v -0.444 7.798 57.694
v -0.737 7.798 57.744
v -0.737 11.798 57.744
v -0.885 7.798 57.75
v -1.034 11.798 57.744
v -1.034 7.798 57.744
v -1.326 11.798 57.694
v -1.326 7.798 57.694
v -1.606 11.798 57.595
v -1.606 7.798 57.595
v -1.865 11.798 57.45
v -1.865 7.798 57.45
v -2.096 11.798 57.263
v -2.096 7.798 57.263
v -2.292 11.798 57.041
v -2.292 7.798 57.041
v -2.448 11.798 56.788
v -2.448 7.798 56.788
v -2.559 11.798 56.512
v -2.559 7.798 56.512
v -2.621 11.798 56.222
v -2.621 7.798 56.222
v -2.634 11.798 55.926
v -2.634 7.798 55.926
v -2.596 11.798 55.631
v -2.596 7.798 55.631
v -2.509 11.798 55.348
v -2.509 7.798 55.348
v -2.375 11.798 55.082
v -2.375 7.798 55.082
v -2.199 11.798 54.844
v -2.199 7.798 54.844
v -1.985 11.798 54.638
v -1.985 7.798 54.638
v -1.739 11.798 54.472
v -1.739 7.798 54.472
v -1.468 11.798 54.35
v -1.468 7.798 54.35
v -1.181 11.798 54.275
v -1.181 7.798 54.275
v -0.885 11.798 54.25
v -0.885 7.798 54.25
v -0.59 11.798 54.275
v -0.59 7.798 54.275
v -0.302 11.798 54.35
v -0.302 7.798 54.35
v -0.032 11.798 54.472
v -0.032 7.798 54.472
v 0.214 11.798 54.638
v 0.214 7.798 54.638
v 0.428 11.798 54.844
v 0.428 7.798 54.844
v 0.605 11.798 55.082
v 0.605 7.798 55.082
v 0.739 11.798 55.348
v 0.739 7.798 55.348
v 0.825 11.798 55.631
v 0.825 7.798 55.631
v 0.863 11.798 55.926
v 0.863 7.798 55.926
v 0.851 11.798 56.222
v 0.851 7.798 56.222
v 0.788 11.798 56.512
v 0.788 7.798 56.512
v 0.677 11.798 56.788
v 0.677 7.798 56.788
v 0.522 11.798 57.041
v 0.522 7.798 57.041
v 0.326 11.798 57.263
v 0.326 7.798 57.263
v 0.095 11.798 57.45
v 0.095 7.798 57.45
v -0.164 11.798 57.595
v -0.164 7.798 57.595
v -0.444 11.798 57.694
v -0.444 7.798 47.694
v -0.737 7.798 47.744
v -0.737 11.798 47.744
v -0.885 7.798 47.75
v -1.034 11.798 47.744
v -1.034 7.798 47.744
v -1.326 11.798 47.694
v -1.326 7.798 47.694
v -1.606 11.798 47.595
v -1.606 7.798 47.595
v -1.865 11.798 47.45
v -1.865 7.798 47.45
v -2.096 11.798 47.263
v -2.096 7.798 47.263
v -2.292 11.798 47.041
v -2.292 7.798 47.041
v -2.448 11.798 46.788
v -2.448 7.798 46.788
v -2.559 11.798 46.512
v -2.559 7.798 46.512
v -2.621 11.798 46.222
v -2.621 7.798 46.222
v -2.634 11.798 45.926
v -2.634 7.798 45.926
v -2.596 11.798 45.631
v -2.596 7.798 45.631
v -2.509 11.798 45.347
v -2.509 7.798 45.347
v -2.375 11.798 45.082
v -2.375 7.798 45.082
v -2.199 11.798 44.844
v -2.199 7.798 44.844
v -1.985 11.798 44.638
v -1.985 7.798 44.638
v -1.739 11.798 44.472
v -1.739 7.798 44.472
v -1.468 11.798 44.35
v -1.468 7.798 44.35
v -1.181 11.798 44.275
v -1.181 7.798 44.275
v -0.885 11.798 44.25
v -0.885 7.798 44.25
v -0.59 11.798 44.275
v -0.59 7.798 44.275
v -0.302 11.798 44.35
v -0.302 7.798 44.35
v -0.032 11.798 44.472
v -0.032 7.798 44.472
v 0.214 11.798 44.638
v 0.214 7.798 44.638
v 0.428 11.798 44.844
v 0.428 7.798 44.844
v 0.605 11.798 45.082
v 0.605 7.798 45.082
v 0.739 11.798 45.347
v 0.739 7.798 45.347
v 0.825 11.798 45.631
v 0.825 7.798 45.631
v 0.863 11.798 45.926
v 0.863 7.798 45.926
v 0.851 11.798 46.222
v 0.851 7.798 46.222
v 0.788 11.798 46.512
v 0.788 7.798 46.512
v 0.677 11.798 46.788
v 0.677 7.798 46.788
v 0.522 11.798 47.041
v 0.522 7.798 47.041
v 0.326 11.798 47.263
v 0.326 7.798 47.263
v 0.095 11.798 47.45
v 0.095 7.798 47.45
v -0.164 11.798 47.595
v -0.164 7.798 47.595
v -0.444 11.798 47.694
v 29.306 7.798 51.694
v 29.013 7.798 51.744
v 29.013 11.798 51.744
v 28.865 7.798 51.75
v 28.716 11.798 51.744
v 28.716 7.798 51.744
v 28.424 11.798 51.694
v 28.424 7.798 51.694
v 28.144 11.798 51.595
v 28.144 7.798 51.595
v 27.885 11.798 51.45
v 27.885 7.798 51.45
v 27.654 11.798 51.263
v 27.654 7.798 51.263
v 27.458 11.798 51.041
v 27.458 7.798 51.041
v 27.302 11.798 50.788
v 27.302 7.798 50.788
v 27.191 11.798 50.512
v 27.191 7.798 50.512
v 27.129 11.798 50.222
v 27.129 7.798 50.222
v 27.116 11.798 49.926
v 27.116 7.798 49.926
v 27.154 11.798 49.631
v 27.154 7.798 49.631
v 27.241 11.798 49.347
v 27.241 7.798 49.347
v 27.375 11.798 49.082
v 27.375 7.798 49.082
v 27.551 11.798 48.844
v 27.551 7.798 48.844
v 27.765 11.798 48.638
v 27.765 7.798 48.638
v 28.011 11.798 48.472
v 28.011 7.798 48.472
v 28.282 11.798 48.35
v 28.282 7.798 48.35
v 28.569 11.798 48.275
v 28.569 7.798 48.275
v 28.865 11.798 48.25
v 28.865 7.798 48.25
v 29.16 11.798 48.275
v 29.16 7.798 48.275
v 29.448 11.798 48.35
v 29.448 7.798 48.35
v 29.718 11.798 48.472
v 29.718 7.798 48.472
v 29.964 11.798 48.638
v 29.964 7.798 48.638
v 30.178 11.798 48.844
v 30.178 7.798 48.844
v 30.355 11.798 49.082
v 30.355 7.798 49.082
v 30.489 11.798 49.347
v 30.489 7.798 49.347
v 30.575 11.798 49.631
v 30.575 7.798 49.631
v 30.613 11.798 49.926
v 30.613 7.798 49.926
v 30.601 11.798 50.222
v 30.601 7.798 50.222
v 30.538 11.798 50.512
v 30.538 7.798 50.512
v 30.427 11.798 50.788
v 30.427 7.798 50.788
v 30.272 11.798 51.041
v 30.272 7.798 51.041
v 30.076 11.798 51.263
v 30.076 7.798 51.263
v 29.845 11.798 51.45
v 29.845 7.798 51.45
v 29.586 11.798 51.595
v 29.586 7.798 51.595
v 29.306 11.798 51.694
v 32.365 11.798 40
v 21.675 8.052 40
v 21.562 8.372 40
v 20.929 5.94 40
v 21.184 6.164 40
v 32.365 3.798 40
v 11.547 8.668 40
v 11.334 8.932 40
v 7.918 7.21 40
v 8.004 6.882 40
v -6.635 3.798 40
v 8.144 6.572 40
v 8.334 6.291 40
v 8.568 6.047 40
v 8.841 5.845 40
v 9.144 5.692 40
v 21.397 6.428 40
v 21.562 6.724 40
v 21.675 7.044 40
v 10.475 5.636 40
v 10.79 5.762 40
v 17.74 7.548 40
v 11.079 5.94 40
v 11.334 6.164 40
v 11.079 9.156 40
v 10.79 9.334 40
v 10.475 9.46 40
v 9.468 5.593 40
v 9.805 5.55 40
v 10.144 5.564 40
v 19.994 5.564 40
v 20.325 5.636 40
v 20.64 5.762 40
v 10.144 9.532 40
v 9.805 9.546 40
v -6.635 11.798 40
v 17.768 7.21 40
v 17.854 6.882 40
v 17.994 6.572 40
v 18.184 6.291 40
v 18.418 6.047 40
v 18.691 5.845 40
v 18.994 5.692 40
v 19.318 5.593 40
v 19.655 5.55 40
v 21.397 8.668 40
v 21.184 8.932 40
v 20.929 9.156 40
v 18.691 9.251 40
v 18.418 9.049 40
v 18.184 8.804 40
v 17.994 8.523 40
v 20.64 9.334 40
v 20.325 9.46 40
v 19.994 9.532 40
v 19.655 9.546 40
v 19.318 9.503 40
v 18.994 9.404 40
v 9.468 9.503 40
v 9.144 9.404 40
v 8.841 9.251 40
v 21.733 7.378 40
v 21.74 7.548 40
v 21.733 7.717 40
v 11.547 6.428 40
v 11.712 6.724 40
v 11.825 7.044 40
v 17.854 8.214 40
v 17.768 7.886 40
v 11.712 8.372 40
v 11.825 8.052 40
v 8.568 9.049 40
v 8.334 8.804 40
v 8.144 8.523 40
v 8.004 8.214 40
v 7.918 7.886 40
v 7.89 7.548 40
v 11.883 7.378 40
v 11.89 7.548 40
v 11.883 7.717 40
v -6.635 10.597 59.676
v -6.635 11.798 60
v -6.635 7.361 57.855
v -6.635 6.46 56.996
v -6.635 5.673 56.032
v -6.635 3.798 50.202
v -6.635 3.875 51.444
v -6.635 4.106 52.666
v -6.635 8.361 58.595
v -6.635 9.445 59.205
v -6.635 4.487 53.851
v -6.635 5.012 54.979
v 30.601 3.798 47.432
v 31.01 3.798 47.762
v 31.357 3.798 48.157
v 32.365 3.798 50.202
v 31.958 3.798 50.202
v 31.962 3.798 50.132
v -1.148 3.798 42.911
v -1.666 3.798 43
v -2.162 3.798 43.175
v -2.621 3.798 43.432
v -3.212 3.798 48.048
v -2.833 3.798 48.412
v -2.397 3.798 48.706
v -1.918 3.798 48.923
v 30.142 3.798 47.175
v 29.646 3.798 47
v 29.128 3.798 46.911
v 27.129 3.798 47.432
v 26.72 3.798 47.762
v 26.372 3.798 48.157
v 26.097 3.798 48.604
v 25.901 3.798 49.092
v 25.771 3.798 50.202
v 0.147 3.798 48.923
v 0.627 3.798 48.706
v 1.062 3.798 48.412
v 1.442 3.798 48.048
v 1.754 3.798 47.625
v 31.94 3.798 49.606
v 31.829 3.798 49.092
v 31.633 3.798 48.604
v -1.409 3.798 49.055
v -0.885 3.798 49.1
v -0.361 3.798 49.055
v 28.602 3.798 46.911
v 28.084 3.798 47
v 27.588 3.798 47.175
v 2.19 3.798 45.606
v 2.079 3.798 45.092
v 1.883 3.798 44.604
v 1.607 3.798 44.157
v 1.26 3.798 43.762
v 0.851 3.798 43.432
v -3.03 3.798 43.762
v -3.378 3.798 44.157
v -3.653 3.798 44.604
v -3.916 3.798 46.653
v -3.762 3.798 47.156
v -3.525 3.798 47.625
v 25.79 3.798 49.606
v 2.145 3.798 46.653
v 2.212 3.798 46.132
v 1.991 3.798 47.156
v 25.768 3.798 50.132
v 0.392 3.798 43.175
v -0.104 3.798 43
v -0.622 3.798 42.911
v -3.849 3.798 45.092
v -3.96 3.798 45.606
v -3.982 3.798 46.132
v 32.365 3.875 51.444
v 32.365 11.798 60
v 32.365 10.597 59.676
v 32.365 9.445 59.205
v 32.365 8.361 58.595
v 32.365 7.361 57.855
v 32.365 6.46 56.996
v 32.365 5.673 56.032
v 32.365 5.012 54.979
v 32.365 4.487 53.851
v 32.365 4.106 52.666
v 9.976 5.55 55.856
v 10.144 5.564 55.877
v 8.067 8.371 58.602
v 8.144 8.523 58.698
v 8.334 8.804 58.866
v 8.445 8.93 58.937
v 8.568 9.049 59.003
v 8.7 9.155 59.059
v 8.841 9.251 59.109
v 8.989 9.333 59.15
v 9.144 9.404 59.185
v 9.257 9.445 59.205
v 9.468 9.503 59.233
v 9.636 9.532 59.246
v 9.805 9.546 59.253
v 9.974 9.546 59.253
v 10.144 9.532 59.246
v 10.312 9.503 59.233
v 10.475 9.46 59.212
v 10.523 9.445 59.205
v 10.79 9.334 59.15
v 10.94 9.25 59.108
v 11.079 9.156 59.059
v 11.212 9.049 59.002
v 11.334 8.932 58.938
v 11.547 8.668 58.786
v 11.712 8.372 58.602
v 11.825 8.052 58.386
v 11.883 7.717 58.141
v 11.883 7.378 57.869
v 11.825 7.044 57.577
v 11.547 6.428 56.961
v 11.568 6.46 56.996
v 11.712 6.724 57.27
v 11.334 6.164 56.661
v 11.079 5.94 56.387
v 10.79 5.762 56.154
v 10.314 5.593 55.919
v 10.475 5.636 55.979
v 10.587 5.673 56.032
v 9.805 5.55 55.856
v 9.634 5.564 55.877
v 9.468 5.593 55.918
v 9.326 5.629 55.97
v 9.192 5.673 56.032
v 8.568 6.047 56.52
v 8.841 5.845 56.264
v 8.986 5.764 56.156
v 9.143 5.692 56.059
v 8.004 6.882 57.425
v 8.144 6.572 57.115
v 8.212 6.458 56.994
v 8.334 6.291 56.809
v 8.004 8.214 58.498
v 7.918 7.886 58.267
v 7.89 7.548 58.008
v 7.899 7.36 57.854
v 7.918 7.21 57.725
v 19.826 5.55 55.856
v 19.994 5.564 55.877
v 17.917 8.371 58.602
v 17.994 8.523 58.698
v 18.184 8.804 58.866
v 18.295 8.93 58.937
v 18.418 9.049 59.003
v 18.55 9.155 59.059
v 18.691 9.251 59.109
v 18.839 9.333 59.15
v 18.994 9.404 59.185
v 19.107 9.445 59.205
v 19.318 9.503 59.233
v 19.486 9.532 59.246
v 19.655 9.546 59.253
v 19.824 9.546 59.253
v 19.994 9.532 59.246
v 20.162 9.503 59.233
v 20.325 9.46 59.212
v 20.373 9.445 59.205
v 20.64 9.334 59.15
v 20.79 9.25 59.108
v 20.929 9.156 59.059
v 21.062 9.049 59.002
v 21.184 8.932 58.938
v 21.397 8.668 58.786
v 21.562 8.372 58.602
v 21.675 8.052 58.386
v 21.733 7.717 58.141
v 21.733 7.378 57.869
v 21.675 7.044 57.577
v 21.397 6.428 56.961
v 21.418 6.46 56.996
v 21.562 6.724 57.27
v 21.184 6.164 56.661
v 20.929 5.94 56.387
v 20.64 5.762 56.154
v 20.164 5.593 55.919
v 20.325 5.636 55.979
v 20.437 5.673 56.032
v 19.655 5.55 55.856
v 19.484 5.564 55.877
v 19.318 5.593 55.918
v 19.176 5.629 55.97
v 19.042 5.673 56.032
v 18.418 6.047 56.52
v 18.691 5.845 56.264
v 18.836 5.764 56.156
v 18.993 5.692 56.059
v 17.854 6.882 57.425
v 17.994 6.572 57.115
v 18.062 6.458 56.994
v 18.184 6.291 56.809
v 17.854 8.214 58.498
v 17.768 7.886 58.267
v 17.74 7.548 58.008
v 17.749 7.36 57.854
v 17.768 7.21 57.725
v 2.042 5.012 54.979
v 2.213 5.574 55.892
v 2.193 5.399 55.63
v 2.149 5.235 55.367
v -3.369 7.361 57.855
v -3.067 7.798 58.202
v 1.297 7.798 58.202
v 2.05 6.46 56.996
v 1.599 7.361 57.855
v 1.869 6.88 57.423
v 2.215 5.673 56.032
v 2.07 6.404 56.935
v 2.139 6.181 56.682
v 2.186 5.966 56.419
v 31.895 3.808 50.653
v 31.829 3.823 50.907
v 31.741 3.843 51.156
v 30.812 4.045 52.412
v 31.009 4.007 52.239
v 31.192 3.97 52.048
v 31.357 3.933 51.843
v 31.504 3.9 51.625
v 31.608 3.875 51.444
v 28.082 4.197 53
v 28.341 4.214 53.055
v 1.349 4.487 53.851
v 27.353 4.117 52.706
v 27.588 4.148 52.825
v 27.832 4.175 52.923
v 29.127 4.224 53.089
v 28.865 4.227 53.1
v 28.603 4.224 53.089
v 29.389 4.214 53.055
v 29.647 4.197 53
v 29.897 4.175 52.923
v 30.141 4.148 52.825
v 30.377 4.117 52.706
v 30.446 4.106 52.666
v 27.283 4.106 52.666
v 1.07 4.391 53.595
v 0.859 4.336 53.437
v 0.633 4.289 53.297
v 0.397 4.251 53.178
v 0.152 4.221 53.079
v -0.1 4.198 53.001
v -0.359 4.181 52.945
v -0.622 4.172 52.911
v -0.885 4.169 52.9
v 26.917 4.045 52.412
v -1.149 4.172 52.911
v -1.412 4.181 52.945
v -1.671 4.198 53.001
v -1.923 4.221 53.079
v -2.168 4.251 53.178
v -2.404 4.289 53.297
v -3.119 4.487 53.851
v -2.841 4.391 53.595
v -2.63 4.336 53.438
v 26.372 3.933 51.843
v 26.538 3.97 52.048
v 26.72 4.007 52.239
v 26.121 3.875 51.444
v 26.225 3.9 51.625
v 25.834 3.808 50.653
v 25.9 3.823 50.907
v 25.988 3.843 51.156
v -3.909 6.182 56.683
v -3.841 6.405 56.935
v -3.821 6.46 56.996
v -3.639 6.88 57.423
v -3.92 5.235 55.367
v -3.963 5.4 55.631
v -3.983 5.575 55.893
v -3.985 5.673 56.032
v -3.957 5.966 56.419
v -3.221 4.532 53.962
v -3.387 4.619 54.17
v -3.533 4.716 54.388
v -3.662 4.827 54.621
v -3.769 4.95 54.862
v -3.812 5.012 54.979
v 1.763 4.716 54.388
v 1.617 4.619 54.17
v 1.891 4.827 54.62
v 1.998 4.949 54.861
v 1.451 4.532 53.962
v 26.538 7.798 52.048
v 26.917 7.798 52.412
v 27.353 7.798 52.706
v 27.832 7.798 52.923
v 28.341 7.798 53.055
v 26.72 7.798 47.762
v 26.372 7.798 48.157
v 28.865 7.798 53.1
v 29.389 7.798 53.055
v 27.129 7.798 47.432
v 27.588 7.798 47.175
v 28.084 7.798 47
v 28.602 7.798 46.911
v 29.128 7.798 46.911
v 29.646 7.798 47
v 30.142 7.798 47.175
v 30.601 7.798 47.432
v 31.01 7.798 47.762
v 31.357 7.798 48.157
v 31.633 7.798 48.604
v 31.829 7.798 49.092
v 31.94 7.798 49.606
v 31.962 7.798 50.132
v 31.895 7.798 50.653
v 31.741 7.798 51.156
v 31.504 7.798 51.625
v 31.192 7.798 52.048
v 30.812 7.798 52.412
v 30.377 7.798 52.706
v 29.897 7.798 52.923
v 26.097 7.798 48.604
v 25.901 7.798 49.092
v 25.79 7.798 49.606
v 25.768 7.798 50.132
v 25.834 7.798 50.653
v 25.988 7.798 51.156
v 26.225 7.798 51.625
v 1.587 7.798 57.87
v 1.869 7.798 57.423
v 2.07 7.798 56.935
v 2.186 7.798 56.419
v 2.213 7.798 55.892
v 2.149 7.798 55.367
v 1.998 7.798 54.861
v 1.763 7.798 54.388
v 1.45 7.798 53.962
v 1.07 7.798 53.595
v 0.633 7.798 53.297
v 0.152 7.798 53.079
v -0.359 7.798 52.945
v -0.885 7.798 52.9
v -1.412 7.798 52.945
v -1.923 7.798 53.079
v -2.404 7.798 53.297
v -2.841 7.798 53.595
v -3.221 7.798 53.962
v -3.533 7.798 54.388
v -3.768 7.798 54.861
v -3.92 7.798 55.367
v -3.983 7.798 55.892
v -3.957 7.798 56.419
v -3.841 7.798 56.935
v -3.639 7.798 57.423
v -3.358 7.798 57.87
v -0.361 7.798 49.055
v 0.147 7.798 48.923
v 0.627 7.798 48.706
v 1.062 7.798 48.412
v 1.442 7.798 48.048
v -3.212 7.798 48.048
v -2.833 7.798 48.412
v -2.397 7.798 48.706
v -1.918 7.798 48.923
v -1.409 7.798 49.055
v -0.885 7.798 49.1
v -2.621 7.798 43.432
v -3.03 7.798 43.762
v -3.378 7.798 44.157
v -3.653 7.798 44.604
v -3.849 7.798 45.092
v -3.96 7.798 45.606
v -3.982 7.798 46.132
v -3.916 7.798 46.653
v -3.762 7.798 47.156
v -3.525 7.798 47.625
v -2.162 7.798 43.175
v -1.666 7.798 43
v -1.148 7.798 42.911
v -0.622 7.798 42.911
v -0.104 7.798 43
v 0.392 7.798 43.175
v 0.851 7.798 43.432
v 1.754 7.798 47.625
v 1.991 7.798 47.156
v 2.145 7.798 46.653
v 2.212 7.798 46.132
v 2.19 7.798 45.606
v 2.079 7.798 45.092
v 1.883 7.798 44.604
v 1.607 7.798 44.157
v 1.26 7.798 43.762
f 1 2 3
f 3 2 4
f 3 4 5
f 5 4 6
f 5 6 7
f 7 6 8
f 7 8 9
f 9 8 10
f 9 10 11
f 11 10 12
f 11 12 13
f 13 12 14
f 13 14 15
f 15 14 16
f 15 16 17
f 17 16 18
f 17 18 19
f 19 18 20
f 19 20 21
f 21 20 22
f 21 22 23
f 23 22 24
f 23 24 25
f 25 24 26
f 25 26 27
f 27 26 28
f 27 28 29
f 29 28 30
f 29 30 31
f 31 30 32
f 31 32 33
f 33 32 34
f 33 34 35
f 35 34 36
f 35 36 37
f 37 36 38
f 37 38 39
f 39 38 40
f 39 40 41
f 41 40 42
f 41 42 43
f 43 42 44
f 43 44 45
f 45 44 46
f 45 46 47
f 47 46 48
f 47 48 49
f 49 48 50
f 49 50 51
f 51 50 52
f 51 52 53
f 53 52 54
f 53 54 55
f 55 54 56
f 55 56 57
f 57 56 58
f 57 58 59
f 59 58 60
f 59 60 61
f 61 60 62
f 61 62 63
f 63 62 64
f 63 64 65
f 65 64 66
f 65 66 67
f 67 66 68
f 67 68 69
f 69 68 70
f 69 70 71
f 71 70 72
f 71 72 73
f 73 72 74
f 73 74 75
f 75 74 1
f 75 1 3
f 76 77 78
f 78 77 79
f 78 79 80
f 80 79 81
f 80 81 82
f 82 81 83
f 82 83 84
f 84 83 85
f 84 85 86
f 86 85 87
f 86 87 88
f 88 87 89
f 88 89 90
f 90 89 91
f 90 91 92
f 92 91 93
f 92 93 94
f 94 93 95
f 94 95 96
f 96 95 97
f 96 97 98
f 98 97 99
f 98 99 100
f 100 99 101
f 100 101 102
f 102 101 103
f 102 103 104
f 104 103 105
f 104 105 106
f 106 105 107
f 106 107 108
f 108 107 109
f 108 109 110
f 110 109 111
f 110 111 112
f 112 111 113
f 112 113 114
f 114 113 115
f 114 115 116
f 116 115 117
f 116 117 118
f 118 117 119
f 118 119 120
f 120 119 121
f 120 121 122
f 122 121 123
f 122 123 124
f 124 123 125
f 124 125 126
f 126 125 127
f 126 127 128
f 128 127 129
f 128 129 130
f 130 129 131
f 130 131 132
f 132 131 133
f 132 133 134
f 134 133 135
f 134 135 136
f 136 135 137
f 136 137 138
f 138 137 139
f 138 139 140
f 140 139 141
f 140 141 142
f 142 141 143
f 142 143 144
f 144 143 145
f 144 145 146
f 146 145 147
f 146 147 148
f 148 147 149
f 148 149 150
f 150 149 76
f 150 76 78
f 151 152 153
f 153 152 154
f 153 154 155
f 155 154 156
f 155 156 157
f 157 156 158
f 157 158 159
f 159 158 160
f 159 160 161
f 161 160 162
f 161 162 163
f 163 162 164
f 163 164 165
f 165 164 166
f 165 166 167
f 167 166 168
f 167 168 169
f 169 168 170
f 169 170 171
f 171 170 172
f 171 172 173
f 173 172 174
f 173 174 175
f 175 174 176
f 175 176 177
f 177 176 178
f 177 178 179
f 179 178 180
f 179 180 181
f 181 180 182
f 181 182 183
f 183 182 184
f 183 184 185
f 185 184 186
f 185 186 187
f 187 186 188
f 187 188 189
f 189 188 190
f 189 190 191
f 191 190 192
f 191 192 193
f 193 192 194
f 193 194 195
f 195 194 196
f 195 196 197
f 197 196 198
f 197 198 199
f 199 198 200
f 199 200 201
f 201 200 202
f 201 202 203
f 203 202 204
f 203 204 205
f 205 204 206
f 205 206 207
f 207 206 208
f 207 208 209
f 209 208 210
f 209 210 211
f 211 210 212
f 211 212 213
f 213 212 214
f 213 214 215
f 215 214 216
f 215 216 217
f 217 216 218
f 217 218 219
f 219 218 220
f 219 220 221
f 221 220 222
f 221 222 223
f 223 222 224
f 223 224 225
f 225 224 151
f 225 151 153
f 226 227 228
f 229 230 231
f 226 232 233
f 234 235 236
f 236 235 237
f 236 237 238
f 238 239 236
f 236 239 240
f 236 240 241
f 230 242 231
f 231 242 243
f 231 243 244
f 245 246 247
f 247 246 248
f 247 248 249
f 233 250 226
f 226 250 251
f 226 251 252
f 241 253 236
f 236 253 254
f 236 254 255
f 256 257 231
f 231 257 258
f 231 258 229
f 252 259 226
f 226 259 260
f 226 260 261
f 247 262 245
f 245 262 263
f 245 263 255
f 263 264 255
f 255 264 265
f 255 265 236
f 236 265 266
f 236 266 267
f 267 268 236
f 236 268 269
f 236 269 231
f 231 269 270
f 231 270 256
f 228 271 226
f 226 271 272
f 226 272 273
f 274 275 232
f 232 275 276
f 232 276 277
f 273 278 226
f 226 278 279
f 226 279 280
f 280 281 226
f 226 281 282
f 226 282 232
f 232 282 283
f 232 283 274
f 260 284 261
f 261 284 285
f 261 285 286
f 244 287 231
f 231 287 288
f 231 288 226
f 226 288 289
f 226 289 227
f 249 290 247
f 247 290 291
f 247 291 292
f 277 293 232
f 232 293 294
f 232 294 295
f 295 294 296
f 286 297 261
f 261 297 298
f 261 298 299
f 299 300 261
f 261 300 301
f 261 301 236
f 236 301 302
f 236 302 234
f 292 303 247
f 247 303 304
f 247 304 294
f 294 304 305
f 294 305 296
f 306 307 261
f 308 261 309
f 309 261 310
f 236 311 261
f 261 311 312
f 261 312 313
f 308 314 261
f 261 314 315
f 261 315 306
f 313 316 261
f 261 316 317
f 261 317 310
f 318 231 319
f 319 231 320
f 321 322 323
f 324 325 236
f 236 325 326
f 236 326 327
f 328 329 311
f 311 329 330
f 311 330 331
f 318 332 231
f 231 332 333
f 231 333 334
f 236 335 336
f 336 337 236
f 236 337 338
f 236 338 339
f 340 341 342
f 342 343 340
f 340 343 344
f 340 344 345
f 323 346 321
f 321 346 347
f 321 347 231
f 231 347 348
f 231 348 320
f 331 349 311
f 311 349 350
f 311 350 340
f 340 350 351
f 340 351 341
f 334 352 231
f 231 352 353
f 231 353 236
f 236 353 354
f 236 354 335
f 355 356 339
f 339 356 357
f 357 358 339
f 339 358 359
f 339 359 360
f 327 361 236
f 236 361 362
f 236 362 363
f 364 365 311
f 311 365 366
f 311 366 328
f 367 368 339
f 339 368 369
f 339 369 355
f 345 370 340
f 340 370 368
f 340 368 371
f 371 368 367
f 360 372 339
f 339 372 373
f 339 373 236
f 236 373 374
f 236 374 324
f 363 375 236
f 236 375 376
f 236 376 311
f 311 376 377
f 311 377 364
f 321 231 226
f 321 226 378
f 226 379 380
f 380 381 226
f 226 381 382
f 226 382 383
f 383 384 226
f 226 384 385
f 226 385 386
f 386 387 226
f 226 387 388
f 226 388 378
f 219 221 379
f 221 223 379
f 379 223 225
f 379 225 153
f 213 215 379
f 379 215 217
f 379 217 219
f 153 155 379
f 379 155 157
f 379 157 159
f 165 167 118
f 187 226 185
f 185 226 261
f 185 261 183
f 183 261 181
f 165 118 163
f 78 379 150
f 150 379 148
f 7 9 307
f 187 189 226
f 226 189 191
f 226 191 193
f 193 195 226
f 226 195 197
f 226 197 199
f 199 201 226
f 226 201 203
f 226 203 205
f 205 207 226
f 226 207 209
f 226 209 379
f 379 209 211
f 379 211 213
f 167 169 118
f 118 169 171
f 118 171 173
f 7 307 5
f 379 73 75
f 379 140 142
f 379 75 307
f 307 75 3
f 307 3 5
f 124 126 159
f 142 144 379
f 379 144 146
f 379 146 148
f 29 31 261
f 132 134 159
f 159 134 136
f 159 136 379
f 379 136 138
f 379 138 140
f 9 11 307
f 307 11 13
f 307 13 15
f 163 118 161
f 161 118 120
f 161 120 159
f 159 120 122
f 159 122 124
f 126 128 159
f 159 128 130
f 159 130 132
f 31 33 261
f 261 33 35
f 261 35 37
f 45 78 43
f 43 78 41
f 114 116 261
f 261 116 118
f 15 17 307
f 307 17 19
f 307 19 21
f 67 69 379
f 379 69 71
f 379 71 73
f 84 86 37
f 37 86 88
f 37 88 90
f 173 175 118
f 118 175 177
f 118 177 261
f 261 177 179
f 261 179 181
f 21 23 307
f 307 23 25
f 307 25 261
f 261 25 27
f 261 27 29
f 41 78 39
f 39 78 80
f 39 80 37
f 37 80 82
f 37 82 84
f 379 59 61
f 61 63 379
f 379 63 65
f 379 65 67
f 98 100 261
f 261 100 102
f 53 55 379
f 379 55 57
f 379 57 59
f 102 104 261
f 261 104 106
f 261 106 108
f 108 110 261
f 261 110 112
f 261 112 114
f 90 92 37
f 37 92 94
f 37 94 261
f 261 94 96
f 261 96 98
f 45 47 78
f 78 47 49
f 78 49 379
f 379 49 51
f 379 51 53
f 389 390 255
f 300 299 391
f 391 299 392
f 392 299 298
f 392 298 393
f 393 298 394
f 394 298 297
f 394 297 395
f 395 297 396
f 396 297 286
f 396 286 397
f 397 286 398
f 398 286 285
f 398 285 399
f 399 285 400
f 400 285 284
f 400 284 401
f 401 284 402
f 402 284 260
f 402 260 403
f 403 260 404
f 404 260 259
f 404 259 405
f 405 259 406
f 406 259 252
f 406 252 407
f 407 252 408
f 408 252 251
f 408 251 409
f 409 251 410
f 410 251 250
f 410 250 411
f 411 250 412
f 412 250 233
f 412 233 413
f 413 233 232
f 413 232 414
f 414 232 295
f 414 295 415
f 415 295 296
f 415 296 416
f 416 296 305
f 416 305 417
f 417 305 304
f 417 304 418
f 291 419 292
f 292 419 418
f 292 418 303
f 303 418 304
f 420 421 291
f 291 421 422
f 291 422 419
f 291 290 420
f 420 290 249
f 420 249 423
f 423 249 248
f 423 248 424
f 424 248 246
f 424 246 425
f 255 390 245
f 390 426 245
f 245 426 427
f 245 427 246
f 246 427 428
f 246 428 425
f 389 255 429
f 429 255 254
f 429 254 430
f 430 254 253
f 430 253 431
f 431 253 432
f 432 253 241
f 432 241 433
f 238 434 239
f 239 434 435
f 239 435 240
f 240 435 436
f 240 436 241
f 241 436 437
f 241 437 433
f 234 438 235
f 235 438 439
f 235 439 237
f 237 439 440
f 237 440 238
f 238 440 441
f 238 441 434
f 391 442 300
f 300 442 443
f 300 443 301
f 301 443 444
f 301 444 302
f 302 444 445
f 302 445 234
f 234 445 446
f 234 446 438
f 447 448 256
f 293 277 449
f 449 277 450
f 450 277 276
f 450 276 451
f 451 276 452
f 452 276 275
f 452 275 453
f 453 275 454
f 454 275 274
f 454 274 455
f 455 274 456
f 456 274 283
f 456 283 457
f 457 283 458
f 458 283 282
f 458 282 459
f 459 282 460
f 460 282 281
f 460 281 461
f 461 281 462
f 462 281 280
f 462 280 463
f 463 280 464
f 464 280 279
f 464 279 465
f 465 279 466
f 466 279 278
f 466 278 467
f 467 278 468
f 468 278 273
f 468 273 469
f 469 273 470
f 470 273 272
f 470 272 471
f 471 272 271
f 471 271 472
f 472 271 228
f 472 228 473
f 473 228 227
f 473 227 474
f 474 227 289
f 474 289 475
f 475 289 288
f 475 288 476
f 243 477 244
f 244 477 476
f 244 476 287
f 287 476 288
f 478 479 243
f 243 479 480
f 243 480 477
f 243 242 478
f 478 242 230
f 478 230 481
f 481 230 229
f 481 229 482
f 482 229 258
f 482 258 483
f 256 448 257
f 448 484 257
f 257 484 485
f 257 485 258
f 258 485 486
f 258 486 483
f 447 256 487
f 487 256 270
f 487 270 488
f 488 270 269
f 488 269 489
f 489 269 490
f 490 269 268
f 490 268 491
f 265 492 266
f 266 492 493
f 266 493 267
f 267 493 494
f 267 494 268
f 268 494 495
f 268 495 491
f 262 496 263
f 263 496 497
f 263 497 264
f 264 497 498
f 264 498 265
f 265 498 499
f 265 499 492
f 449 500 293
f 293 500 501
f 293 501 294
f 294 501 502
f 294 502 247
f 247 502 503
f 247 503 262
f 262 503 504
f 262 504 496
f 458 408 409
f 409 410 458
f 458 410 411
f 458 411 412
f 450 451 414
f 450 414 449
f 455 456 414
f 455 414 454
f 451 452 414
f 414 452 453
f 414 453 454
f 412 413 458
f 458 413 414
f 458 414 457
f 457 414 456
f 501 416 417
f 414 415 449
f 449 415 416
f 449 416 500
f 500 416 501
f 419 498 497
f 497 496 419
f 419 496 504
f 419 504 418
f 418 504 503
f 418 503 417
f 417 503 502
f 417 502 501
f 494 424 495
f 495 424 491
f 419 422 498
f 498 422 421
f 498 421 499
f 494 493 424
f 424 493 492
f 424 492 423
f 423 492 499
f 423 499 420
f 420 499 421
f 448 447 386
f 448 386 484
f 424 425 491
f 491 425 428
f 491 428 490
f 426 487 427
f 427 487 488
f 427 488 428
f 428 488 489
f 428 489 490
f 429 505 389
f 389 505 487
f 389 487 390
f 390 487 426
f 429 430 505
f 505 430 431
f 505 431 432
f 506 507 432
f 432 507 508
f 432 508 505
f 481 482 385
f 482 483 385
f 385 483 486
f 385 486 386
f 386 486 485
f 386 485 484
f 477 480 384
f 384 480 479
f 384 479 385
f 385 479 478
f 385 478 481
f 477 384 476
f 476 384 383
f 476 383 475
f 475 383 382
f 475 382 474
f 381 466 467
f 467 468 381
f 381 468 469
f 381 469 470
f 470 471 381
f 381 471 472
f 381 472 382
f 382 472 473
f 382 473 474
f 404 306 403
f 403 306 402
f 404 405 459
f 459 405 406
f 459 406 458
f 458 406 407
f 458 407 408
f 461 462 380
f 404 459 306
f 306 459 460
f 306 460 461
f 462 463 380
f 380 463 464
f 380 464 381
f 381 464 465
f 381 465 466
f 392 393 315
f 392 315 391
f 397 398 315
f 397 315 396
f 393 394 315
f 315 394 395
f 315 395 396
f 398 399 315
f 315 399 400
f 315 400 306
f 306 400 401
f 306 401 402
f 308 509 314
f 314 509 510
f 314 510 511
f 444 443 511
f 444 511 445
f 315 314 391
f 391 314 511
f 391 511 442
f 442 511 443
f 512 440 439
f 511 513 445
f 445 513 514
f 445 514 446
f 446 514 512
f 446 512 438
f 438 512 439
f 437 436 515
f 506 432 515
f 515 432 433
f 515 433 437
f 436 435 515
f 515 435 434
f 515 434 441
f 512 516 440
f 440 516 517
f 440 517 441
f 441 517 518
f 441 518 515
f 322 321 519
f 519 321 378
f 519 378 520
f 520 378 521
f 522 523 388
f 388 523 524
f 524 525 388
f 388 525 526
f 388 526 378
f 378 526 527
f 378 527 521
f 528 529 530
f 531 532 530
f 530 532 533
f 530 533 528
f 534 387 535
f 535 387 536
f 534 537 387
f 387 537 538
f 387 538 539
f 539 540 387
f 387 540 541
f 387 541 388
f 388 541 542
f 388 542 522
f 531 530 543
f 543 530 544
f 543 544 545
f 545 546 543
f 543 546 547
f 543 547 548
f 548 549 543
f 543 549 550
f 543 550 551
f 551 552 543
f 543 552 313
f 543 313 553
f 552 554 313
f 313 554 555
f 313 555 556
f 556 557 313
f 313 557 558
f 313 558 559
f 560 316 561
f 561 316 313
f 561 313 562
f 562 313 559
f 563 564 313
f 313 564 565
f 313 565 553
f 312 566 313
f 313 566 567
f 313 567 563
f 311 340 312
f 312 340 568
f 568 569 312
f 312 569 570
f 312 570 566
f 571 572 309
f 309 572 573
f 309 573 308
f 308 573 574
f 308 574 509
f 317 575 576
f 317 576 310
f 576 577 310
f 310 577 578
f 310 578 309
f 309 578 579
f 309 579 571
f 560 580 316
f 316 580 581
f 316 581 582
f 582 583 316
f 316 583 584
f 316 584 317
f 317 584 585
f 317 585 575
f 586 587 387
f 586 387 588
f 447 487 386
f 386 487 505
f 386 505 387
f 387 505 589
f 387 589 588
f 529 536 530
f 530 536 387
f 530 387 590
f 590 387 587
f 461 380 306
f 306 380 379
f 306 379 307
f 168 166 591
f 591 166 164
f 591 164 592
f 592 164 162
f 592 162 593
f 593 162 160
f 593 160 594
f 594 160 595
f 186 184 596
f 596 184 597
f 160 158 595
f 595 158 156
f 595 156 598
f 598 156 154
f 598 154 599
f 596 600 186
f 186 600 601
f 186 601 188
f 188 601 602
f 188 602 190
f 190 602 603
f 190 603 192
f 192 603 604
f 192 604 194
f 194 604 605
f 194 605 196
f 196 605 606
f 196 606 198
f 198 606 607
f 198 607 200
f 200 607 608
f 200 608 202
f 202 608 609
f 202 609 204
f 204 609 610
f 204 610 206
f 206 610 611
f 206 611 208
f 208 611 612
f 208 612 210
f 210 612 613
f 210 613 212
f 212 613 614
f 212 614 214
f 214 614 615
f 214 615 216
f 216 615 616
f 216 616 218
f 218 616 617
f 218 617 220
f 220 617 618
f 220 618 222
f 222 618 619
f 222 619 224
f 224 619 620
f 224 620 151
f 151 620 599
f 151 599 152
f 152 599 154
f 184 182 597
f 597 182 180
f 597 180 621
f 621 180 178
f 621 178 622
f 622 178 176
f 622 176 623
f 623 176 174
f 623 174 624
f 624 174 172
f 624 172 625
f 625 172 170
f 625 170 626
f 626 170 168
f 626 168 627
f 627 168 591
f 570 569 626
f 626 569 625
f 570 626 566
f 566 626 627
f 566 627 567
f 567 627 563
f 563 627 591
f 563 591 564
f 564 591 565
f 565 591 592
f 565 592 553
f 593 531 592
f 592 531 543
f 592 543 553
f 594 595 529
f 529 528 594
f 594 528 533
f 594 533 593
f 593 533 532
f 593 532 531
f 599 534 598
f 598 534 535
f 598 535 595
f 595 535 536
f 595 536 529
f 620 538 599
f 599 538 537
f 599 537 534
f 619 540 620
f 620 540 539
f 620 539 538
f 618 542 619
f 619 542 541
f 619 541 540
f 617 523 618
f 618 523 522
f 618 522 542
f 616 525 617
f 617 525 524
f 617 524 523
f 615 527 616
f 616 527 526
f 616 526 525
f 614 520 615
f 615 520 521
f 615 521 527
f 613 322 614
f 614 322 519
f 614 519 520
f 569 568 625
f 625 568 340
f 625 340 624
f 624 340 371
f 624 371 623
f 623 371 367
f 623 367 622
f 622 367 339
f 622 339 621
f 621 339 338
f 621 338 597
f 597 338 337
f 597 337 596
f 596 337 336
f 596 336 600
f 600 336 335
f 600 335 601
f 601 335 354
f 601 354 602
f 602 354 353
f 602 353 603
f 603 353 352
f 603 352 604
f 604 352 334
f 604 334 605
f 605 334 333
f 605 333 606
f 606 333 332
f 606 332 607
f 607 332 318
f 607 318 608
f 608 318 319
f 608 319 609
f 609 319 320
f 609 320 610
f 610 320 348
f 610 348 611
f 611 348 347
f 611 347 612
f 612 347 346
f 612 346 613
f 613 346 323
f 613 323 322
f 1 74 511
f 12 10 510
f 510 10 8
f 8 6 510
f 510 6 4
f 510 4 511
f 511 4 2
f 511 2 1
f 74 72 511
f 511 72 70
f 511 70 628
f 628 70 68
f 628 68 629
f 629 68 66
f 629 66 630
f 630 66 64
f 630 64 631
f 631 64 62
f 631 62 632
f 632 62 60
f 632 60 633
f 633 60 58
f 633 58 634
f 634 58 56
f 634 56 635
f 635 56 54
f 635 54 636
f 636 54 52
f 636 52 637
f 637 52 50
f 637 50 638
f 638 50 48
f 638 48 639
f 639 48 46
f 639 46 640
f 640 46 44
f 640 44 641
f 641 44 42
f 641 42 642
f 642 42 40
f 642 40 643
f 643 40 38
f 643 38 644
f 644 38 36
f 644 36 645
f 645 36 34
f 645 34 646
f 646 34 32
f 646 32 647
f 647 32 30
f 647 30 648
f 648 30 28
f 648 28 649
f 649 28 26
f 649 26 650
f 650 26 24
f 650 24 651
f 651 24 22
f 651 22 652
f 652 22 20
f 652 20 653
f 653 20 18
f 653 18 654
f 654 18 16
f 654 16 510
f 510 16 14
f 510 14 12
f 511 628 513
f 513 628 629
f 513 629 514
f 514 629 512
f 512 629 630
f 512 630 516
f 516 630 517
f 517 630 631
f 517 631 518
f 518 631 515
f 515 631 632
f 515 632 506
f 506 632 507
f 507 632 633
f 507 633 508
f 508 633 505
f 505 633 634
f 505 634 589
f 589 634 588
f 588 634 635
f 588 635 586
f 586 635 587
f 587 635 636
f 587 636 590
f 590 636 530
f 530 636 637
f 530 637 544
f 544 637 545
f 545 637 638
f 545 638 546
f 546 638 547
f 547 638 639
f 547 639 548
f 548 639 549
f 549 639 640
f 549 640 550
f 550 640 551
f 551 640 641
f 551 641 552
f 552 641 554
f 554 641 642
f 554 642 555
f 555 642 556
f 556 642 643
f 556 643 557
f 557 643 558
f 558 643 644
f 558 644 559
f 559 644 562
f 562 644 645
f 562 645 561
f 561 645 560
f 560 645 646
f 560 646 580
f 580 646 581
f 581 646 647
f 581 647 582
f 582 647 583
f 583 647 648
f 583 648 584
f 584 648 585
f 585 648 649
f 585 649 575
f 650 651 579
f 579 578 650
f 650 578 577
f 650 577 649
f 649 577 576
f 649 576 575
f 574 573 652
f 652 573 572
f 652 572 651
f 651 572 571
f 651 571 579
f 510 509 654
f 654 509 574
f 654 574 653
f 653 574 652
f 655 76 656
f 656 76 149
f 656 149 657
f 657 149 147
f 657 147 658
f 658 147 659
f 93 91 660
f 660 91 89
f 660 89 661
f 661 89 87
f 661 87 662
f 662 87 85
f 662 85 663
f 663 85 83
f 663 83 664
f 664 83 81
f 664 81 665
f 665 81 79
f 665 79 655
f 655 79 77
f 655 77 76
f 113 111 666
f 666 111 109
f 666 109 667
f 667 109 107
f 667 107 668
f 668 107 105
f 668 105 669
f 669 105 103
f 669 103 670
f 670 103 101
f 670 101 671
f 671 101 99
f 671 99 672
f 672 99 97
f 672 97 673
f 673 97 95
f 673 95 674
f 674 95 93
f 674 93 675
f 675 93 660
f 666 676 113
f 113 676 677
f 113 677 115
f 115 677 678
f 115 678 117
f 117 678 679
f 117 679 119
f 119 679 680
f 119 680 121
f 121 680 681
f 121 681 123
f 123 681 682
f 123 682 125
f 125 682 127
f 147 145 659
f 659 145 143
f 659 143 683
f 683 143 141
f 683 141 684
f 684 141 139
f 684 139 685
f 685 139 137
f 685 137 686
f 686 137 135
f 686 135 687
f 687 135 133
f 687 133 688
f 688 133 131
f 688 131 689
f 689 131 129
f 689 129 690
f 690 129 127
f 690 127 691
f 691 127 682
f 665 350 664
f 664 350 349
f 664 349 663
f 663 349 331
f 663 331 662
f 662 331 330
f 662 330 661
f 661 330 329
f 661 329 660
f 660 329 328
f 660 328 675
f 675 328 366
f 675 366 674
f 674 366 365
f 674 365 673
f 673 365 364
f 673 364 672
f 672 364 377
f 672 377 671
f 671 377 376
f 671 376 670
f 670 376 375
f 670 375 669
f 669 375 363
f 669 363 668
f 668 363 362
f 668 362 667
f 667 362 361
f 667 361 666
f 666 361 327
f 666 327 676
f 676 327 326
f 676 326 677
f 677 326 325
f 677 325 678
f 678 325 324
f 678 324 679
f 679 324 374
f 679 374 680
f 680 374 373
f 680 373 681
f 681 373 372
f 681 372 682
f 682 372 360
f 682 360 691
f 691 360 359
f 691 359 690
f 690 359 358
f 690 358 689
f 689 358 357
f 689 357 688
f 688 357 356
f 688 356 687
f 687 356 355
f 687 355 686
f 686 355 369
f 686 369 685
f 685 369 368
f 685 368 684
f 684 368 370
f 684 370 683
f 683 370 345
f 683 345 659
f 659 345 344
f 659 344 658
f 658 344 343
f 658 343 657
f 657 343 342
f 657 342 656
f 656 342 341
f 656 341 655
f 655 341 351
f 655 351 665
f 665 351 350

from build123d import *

# Parameters (mm, degrees)
SKETCH1_W               = 39
SKETCH1_H               = 8
SKETCH1_R               = 2
BOSS_EXTRUDE1_DEPTH     = 20
CUT_EXTRUDE3_REACH      = 40.878
SKETCH2_R               = 1.75
FILLET1_R               = 10
SKETCH3_R               = 3.1
CUT_EXTRUDE4_DEPTH      = 4
CUT_EXTRUDE6_DEPTH      = 69.640184916
CUT_EXTRUDE6_DEPTH_BACK = 69.640184916
SKETCH4_W               = 49.515831406
SKETCH4_H               = 28.781468371


with BuildPart() as part:
    # Sketch1 → Boss-Extrude1 (new body)
    with BuildSketch(Plane.XY):
        with Locations((12.864717907, 7.797867952)):
            Rectangle(SKETCH1_W, SKETCH1_H)
        with Locations((9.889717907, 7.547867952)):
            Circle(SKETCH1_R, mode=Mode.SUBTRACT)
        with Locations((19.739717907, 7.547867952)):
            Circle(SKETCH1_R, mode=Mode.SUBTRACT)
    extrude(amount=BOSS_EXTRUDE1_DEPTH)

    # Sketch2 → Cut-Extrude3 (cut, up to next)
    with BuildSketch(Plane(origin=(0, 11.797867952, 0), x_dir=(1, 0, 0), z_dir=(0, 1, 0)), mode=Mode.PRIVATE) as cut_extrude3_sk1:
        with Locations(Location((28.864717907, -10, 0), (0, 0, 270))):
            Circle(SKETCH2_R)
    cut_extrude3_tool1 = extrude(cut_extrude3_sk1.sketch, amount=-CUT_EXTRUDE3_REACH, mode=Mode.PRIVATE) & part.part
    # Sketch2 → Cut-Extrude3 (cut, up to next)
    with BuildSketch(Plane(origin=(0, 11.797867952, 0), x_dir=(1, 0, 0), z_dir=(0, 1, 0)), mode=Mode.PRIVATE) as cut_extrude3_sk2:
        with Locations(Location((-0.885282093, -14, 0), (0, 0, 270))):
            Circle(SKETCH2_R)
    cut_extrude3_tool2 = extrude(cut_extrude3_sk2.sketch, amount=-CUT_EXTRUDE3_REACH, mode=Mode.PRIVATE) & part.part
    # Sketch2 → Cut-Extrude3 (cut, up to next)
    with BuildSketch(Plane(origin=(0, 11.797867952, 0), x_dir=(1, 0, 0), z_dir=(0, 1, 0)), mode=Mode.PRIVATE) as cut_extrude3_sk3:
        with Locations(Location((-0.885282093, -4, 0), (0, 0, 270))):
            Circle(SKETCH2_R)
    cut_extrude3_tool3 = extrude(cut_extrude3_sk3.sketch, amount=-CUT_EXTRUDE3_REACH, mode=Mode.PRIVATE) & part.part
    add(cut_extrude3_tool1.solids().sort_by_distance((28.864718, 11.797868, 10))[0], mode=Mode.SUBTRACT)
    add(cut_extrude3_tool2.solids().sort_by_distance((-0.885282, 11.797868, 14))[0], mode=Mode.SUBTRACT)
    add(cut_extrude3_tool3.solids().sort_by_distance((-0.885282, 11.797868, 4))[0], mode=Mode.SUBTRACT)

    # Fillet1
    # the kernel refuses this fillet: 10 mm, written as the material it takes off along each edge
    with BuildSketch(Plane(origin=(56.859615335, 3.797867952, 0), x_dir=(0, 1, 0), z_dir=(-1, 0, 0))) as fillet1_piece_1:
        with BuildLine():
            CenterArc((10, -9.797958971), FILLET1_R, 101.536959033, 78.463040967)
            Line((0, -9.797958971), (-0.2, -9.797958971))
            Line((-0.2, -9.797958971), (-0.2, 0))
            Line((-0.2, 0), (0, 0.2))
            ThreePointArc((0, 0.2), (4, 0.2), (7.96, 0.195959179))
            Line((7.96, 0.195959179), (8, 0))
        make_face()
    extrude(amount=87.989794856, mode=Mode.SUBTRACT)

    # Sketch3 → Cut-Extrude4 (cut)
    with BuildSketch(Plane.XZ.offset(-3.797867952)):
        with Locations(Location((-0.885282093, 14, 0), (0, 0, 270))):
            Circle(SKETCH3_R)
        with Locations(Location((28.864717907, 10, 0), (0, 0, 270))):
            Circle(SKETCH3_R)
        with Locations((-0.885282093, 4)):
            Circle(SKETCH3_R)
    extrude(amount=-CUT_EXTRUDE4_DEPTH, mode=Mode.SUBTRACT)


with BuildPart() as body_2:
    # Mirror1: mirrored copy
    add(part.part.mirror(Plane.XY.offset(30)))


with BuildPart() as part_1:
    add(part.part)

    # Sketch4 → Cut-Extrude6 (cut, two sides: drawn at the far end of the back side and taken through both)
    with BuildSketch(Plane(origin=(0, 11.797867952, 0), x_dir=(1, 0, 0), z_dir=(0, 1, 0)).offset(-CUT_EXTRUDE6_DEPTH_BACK)):
        with Locations((14.166283804, -9.086507762)):
            Rectangle(SKETCH4_W, SKETCH4_H)
    extrude(amount=CUT_EXTRUDE6_DEPTH + CUT_EXTRUDE6_DEPTH_BACK, mode=Mode.SUBTRACT)


solid = body_2.part
